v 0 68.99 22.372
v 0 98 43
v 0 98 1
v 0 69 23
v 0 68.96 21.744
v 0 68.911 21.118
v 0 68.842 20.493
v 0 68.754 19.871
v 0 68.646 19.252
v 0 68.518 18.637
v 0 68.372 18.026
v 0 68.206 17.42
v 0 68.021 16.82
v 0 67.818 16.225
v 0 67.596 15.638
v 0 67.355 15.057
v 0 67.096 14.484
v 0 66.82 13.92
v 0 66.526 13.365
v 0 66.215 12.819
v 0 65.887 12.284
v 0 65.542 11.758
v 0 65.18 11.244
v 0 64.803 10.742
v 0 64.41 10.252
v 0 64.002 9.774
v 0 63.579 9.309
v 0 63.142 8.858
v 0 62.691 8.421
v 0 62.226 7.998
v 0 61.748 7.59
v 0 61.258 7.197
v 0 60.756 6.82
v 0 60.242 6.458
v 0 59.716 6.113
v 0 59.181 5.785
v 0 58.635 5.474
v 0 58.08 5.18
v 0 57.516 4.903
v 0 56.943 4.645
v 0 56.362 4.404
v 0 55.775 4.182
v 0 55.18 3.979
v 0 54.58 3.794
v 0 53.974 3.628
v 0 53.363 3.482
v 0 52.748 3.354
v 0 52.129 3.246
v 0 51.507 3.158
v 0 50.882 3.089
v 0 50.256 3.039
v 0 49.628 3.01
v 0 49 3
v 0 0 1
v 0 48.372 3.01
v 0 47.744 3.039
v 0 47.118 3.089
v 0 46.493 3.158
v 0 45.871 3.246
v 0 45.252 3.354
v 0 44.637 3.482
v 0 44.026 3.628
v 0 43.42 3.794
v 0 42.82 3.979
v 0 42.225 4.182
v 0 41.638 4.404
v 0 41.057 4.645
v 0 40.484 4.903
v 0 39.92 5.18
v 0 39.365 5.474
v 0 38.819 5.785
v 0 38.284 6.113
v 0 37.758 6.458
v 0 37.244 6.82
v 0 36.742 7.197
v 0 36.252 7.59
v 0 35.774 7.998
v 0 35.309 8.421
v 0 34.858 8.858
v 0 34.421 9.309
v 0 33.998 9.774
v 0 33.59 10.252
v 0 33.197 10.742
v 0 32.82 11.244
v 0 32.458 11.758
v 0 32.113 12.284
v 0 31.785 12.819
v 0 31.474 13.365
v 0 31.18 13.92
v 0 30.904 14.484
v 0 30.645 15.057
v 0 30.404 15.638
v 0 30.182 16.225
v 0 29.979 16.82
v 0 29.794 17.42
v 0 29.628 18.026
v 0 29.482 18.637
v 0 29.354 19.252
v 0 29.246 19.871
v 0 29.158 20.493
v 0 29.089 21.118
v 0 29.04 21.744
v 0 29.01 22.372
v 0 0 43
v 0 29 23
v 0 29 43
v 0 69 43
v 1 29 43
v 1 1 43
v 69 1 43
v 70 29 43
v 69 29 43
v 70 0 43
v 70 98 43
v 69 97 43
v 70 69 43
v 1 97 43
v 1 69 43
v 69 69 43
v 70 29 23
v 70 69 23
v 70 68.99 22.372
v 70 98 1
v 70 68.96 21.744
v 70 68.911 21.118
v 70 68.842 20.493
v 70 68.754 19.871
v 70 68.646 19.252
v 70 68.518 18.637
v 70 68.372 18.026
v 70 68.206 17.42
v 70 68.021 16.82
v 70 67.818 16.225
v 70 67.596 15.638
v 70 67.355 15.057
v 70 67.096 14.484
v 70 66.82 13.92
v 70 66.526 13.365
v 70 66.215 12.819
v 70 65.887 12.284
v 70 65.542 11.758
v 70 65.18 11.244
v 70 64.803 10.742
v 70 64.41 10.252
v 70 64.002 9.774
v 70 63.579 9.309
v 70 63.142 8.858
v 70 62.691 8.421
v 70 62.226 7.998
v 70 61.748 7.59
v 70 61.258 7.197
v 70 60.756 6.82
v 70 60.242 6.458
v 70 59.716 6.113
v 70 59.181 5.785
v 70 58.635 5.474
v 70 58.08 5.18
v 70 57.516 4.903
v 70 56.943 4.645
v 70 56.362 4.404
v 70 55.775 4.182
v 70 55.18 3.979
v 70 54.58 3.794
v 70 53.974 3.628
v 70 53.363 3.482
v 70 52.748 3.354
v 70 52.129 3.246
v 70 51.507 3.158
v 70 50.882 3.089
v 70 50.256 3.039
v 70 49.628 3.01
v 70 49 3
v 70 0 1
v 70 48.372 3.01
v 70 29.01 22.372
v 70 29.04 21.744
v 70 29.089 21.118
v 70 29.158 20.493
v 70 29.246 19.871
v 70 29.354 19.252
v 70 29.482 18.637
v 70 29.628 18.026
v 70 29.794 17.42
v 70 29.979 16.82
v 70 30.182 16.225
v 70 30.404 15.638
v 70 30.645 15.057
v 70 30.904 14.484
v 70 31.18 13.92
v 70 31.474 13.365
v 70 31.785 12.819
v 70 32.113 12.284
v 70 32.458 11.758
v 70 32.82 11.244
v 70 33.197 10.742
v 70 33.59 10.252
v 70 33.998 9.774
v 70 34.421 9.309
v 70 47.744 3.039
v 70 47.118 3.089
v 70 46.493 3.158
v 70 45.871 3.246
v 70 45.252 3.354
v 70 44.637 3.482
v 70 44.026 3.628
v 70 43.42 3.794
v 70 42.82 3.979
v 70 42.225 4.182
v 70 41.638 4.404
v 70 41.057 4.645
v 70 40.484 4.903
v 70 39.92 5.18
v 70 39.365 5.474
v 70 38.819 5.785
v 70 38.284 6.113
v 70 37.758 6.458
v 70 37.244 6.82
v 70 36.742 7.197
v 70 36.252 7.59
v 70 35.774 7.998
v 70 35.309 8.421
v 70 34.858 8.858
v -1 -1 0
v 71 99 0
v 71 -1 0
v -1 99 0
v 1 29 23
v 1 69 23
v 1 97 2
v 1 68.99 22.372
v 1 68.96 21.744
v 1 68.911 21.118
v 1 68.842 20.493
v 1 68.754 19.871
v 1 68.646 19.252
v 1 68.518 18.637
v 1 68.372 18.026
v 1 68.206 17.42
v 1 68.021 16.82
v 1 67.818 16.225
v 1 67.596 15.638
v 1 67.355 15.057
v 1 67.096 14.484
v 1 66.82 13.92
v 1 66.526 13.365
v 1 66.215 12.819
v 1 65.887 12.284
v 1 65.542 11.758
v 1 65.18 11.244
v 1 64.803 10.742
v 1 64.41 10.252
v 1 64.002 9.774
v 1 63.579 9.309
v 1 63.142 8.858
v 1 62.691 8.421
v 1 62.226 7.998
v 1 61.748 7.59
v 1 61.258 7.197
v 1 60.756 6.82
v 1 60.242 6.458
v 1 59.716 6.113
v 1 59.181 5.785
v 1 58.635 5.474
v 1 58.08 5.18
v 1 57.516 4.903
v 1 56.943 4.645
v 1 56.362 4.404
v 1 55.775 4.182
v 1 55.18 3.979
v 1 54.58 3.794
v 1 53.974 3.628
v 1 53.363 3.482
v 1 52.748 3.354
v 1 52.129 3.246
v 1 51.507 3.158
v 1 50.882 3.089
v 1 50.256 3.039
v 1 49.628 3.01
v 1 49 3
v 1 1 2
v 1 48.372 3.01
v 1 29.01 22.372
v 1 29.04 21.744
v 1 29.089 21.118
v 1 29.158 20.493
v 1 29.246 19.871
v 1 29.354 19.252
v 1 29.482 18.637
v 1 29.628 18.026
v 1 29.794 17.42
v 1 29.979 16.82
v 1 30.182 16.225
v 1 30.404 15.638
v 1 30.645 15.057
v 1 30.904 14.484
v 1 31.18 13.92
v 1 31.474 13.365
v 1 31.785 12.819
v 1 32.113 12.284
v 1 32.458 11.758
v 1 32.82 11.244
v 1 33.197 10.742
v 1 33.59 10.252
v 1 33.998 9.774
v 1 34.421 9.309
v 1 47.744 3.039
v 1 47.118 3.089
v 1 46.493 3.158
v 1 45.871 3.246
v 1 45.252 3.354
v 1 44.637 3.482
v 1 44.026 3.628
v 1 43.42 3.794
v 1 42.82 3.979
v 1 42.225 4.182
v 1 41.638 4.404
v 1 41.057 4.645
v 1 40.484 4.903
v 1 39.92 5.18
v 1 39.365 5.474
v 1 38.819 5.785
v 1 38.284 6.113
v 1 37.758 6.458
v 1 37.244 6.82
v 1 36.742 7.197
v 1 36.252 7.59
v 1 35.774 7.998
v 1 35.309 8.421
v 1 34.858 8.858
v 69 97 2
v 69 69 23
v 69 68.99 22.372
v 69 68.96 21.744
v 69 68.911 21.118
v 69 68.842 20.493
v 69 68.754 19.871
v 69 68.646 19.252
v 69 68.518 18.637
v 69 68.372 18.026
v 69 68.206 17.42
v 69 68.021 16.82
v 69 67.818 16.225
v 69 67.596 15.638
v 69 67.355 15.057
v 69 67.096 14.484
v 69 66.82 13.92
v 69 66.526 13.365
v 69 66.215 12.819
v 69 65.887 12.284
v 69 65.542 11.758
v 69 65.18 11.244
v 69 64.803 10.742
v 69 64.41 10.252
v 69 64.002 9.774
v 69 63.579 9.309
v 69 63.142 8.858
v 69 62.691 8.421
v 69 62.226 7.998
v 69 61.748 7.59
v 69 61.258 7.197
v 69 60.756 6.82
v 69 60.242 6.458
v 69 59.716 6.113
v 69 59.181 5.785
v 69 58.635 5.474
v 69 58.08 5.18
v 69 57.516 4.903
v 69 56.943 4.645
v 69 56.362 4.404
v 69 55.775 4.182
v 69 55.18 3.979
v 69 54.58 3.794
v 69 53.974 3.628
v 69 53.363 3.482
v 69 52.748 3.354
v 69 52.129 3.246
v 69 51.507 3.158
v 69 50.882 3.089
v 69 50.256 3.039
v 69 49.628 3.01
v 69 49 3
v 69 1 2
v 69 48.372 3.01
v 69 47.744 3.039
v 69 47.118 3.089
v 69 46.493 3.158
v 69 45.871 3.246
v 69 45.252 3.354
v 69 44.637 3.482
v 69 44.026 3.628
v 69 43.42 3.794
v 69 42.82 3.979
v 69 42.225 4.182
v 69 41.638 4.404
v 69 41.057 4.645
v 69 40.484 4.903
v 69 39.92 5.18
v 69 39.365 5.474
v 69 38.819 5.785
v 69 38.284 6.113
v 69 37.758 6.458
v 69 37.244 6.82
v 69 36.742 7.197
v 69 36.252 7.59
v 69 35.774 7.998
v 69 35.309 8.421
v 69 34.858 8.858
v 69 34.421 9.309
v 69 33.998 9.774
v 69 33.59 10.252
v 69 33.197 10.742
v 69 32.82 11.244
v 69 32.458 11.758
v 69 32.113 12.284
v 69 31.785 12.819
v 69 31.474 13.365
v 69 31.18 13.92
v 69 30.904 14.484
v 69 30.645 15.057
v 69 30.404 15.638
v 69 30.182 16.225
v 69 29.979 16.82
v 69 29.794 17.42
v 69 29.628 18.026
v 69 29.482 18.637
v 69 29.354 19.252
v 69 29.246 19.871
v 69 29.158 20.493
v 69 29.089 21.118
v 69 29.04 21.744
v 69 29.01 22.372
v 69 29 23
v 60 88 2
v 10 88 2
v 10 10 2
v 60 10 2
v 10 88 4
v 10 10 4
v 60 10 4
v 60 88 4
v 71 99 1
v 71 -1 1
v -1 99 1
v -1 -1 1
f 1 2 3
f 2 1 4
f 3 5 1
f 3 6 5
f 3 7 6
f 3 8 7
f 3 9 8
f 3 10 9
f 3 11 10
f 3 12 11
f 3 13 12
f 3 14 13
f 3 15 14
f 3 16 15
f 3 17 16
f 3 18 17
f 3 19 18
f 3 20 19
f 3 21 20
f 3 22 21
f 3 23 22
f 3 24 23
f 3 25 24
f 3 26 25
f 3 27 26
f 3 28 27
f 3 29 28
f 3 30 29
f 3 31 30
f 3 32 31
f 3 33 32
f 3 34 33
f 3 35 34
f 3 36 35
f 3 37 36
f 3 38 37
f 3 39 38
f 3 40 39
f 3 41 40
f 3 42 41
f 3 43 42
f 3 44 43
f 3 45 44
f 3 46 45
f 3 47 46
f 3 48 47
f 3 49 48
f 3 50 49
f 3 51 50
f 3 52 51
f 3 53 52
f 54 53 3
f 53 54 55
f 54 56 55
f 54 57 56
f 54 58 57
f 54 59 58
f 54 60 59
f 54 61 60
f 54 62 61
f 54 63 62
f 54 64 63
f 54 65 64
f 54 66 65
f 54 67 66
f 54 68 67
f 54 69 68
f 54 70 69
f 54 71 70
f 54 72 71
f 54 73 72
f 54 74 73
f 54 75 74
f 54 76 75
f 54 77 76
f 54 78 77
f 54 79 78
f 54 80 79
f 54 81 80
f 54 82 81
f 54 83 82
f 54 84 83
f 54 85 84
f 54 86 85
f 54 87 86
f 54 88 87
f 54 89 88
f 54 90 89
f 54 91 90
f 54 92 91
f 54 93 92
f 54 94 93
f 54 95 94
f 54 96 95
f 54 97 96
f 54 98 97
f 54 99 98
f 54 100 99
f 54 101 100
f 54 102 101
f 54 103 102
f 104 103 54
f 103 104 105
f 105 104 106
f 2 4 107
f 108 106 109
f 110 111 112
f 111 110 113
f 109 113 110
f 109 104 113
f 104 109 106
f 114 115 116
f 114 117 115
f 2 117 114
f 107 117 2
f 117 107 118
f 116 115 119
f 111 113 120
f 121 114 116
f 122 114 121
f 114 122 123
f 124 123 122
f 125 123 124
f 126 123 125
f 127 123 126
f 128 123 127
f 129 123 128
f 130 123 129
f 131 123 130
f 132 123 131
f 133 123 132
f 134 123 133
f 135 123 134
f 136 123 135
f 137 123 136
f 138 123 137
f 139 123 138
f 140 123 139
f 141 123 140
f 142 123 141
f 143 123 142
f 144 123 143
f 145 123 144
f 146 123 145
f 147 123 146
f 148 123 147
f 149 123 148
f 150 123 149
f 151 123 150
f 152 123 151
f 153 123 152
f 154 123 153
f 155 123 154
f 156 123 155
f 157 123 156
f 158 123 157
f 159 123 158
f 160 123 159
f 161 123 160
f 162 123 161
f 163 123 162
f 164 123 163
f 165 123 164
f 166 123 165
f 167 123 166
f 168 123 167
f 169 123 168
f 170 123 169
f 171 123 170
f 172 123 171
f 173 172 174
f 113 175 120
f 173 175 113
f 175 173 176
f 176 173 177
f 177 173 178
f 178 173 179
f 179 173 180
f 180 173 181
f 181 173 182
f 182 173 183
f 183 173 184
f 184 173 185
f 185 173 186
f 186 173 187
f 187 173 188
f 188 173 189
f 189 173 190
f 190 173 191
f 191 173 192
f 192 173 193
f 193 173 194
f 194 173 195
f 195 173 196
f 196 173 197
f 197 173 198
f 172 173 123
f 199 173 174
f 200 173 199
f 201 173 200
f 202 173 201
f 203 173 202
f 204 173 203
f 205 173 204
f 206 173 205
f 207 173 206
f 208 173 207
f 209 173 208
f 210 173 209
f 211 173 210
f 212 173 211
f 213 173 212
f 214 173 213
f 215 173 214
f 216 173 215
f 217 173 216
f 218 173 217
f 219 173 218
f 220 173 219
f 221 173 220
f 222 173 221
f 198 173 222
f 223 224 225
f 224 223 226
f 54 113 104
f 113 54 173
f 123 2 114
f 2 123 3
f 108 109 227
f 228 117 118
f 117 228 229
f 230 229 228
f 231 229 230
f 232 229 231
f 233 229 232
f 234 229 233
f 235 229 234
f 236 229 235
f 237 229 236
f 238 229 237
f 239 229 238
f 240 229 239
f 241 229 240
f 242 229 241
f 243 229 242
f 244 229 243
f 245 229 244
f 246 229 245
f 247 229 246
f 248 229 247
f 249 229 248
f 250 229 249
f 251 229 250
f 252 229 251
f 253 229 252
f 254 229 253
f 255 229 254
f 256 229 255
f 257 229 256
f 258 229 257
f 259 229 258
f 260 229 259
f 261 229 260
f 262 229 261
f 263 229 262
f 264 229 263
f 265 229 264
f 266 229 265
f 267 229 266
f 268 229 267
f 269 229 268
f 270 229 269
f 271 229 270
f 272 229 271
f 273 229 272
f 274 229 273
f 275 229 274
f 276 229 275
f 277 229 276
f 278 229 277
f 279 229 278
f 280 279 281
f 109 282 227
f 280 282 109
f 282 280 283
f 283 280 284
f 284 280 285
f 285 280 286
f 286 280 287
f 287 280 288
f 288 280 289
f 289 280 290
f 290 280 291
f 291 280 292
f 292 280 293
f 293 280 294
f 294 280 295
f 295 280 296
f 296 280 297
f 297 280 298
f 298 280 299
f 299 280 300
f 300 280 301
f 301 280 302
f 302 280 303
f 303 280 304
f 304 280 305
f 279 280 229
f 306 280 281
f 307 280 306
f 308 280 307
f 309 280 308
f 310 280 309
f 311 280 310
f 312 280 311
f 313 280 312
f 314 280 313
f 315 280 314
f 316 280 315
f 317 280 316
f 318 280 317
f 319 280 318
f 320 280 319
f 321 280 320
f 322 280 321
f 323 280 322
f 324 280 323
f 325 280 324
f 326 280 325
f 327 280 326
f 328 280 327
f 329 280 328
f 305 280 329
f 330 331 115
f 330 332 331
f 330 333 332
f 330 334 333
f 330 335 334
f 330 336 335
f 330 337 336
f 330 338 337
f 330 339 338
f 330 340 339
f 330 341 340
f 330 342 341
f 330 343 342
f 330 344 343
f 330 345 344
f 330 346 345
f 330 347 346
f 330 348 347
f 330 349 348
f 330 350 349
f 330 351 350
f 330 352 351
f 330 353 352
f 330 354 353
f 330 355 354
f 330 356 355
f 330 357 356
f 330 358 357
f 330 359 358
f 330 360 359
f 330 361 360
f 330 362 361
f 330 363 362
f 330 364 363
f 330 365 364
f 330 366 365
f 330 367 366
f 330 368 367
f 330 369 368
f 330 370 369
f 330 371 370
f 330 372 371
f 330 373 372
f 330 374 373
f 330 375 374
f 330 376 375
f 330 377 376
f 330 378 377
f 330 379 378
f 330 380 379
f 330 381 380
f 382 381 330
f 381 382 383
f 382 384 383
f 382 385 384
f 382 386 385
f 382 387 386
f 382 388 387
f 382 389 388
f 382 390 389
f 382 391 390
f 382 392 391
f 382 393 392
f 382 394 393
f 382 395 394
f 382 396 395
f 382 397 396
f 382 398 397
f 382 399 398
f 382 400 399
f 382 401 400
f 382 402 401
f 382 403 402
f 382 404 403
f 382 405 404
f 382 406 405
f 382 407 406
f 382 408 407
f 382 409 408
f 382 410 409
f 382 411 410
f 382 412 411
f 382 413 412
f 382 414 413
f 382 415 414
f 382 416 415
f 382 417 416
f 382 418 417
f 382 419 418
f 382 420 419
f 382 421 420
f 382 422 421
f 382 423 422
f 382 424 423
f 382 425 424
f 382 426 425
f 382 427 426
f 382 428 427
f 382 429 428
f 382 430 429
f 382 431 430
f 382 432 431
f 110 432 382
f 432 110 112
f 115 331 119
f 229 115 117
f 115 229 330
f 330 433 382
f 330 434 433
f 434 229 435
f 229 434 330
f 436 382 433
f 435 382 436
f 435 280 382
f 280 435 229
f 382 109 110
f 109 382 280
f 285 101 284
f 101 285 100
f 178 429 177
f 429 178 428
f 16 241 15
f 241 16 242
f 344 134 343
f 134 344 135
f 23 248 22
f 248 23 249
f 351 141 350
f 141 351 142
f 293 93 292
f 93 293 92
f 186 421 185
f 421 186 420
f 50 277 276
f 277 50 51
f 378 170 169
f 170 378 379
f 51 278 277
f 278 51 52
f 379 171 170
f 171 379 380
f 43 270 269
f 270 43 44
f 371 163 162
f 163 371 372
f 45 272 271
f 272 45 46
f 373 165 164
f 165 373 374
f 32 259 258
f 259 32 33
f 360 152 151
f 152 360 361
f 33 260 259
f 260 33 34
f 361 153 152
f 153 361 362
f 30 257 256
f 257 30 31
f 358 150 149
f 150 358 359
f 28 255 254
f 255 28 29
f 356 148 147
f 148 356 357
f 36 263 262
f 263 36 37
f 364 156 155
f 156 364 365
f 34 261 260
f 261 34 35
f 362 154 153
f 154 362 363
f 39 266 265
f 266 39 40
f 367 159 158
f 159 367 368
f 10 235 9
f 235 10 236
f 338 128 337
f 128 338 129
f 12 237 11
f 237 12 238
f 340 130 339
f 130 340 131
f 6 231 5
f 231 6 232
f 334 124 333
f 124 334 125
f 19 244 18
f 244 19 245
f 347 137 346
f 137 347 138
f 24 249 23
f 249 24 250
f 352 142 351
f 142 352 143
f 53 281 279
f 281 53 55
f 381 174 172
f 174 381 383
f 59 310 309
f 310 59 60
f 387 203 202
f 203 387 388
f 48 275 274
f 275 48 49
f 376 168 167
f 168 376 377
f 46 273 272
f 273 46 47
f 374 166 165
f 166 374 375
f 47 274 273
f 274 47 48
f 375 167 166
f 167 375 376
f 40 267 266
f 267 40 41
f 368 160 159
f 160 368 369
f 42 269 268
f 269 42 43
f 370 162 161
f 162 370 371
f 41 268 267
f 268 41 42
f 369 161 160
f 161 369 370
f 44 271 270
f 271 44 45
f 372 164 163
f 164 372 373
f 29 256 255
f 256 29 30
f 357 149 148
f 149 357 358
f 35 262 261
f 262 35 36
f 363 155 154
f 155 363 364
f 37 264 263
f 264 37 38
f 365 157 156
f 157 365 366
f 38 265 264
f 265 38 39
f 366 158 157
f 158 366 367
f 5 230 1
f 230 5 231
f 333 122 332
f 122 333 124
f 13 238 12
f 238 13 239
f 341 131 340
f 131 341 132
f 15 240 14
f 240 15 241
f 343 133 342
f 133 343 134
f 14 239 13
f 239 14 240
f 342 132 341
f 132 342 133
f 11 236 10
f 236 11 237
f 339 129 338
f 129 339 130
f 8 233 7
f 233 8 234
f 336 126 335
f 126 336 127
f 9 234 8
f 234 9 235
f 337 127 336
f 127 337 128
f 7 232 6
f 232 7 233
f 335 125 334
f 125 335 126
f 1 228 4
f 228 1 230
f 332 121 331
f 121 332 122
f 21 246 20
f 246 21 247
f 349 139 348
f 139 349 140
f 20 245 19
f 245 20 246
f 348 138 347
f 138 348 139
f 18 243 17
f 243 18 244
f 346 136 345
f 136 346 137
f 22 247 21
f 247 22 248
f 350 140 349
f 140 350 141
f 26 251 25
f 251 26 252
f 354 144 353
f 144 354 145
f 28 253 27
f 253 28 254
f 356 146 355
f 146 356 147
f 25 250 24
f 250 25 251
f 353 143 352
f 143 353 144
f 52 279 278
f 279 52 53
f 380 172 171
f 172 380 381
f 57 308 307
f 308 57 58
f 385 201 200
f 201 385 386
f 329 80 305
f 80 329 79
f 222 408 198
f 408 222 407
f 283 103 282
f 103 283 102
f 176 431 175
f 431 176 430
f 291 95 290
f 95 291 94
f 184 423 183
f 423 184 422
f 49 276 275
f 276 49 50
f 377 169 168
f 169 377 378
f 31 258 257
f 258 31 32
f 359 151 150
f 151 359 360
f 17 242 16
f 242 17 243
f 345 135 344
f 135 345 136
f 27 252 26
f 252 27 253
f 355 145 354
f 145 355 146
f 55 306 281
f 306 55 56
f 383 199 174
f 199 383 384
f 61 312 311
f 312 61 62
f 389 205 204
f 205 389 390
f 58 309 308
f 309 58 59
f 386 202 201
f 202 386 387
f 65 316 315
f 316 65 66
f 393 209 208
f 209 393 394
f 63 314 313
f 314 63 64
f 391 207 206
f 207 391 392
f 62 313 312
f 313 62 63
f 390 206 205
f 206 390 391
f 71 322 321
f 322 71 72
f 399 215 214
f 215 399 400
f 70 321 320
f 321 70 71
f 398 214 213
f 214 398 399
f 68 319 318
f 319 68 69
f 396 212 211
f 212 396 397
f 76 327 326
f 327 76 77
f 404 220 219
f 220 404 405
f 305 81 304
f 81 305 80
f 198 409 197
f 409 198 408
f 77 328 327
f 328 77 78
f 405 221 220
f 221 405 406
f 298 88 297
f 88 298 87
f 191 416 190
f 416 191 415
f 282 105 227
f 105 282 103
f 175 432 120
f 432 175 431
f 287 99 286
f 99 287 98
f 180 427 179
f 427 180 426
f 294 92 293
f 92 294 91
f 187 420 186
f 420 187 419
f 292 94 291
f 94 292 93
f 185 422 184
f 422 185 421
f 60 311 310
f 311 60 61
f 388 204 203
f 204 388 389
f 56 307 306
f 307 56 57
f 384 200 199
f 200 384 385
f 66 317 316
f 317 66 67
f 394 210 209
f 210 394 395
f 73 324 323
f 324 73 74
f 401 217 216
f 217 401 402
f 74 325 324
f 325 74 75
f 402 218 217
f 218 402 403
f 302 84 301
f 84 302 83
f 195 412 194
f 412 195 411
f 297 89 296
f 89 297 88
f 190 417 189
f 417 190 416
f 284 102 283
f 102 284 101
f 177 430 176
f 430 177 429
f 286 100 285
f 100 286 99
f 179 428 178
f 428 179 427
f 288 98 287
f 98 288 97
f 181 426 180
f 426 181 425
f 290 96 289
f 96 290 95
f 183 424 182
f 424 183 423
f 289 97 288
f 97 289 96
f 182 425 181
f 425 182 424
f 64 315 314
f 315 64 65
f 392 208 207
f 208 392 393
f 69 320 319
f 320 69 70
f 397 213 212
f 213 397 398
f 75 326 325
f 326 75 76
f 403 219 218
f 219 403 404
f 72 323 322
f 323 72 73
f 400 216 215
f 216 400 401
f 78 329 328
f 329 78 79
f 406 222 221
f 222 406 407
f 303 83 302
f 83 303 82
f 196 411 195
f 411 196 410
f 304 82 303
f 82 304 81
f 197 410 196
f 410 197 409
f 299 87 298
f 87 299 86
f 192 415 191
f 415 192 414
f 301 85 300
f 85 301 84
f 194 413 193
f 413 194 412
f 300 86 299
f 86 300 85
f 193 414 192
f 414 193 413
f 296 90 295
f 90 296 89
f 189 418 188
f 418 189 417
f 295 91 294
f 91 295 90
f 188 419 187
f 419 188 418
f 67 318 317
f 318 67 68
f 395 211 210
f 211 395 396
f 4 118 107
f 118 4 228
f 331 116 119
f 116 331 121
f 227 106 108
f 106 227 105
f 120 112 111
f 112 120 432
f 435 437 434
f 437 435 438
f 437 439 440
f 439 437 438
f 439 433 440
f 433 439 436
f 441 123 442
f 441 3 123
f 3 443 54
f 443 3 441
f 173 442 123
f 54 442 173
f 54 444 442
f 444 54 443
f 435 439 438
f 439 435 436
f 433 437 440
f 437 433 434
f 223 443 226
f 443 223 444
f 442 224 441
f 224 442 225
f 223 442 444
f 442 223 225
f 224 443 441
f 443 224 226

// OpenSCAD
$fn=200;

THICK = 1;

CARD_L = 96;
CARD_W = 68;
CARD_STACK = 38;

STUMP = 3;
STUMP_MARGIN = 10;

BOX_W = CARD_W + (THICK * 2);
BOX_L = CARD_L + (THICK * 2);
BOX_H = CARD_STACK + (THICK * 2) + STUMP;

translate([
    STUMP_MARGIN, 
    STUMP_MARGIN, 
    THICK]) {
        
    cube(size = [
        BOX_W - (STUMP_MARGIN * 2),
        BOX_L - (STUMP_MARGIN * 2), 
        STUMP]);
}

translate([
    -THICK, 
    -THICK, 
    0]) {
        
    cube(size = [
        BOX_W + (THICK * 2),
        BOX_L + (THICK * 2), 
        THICK]);
}

difference() {
    cube(size = [
        BOX_W,
        BOX_L, 
        BOX_H]);

    translate([
        THICK, 
        THICK, 
        BOX_H - CARD_STACK - STUMP]) {
            
        cube(size = [
            CARD_W,
            CARD_L,
            CARD_STACK + STUMP + 1]);
    }

    translate([
        -1,
        BOX_L / 2,
        20 + STUMP]) {

        rotate([0, 90, 0]) {
            cylinder(
                h = 1000,
                r = 20);
        }
    }

    translate([
        -1, 
        (BOX_L / 2) - 20, 
        20 + STUMP]) {
            
        cube(size = [
            150,
            40,
            80]);
    }

}
